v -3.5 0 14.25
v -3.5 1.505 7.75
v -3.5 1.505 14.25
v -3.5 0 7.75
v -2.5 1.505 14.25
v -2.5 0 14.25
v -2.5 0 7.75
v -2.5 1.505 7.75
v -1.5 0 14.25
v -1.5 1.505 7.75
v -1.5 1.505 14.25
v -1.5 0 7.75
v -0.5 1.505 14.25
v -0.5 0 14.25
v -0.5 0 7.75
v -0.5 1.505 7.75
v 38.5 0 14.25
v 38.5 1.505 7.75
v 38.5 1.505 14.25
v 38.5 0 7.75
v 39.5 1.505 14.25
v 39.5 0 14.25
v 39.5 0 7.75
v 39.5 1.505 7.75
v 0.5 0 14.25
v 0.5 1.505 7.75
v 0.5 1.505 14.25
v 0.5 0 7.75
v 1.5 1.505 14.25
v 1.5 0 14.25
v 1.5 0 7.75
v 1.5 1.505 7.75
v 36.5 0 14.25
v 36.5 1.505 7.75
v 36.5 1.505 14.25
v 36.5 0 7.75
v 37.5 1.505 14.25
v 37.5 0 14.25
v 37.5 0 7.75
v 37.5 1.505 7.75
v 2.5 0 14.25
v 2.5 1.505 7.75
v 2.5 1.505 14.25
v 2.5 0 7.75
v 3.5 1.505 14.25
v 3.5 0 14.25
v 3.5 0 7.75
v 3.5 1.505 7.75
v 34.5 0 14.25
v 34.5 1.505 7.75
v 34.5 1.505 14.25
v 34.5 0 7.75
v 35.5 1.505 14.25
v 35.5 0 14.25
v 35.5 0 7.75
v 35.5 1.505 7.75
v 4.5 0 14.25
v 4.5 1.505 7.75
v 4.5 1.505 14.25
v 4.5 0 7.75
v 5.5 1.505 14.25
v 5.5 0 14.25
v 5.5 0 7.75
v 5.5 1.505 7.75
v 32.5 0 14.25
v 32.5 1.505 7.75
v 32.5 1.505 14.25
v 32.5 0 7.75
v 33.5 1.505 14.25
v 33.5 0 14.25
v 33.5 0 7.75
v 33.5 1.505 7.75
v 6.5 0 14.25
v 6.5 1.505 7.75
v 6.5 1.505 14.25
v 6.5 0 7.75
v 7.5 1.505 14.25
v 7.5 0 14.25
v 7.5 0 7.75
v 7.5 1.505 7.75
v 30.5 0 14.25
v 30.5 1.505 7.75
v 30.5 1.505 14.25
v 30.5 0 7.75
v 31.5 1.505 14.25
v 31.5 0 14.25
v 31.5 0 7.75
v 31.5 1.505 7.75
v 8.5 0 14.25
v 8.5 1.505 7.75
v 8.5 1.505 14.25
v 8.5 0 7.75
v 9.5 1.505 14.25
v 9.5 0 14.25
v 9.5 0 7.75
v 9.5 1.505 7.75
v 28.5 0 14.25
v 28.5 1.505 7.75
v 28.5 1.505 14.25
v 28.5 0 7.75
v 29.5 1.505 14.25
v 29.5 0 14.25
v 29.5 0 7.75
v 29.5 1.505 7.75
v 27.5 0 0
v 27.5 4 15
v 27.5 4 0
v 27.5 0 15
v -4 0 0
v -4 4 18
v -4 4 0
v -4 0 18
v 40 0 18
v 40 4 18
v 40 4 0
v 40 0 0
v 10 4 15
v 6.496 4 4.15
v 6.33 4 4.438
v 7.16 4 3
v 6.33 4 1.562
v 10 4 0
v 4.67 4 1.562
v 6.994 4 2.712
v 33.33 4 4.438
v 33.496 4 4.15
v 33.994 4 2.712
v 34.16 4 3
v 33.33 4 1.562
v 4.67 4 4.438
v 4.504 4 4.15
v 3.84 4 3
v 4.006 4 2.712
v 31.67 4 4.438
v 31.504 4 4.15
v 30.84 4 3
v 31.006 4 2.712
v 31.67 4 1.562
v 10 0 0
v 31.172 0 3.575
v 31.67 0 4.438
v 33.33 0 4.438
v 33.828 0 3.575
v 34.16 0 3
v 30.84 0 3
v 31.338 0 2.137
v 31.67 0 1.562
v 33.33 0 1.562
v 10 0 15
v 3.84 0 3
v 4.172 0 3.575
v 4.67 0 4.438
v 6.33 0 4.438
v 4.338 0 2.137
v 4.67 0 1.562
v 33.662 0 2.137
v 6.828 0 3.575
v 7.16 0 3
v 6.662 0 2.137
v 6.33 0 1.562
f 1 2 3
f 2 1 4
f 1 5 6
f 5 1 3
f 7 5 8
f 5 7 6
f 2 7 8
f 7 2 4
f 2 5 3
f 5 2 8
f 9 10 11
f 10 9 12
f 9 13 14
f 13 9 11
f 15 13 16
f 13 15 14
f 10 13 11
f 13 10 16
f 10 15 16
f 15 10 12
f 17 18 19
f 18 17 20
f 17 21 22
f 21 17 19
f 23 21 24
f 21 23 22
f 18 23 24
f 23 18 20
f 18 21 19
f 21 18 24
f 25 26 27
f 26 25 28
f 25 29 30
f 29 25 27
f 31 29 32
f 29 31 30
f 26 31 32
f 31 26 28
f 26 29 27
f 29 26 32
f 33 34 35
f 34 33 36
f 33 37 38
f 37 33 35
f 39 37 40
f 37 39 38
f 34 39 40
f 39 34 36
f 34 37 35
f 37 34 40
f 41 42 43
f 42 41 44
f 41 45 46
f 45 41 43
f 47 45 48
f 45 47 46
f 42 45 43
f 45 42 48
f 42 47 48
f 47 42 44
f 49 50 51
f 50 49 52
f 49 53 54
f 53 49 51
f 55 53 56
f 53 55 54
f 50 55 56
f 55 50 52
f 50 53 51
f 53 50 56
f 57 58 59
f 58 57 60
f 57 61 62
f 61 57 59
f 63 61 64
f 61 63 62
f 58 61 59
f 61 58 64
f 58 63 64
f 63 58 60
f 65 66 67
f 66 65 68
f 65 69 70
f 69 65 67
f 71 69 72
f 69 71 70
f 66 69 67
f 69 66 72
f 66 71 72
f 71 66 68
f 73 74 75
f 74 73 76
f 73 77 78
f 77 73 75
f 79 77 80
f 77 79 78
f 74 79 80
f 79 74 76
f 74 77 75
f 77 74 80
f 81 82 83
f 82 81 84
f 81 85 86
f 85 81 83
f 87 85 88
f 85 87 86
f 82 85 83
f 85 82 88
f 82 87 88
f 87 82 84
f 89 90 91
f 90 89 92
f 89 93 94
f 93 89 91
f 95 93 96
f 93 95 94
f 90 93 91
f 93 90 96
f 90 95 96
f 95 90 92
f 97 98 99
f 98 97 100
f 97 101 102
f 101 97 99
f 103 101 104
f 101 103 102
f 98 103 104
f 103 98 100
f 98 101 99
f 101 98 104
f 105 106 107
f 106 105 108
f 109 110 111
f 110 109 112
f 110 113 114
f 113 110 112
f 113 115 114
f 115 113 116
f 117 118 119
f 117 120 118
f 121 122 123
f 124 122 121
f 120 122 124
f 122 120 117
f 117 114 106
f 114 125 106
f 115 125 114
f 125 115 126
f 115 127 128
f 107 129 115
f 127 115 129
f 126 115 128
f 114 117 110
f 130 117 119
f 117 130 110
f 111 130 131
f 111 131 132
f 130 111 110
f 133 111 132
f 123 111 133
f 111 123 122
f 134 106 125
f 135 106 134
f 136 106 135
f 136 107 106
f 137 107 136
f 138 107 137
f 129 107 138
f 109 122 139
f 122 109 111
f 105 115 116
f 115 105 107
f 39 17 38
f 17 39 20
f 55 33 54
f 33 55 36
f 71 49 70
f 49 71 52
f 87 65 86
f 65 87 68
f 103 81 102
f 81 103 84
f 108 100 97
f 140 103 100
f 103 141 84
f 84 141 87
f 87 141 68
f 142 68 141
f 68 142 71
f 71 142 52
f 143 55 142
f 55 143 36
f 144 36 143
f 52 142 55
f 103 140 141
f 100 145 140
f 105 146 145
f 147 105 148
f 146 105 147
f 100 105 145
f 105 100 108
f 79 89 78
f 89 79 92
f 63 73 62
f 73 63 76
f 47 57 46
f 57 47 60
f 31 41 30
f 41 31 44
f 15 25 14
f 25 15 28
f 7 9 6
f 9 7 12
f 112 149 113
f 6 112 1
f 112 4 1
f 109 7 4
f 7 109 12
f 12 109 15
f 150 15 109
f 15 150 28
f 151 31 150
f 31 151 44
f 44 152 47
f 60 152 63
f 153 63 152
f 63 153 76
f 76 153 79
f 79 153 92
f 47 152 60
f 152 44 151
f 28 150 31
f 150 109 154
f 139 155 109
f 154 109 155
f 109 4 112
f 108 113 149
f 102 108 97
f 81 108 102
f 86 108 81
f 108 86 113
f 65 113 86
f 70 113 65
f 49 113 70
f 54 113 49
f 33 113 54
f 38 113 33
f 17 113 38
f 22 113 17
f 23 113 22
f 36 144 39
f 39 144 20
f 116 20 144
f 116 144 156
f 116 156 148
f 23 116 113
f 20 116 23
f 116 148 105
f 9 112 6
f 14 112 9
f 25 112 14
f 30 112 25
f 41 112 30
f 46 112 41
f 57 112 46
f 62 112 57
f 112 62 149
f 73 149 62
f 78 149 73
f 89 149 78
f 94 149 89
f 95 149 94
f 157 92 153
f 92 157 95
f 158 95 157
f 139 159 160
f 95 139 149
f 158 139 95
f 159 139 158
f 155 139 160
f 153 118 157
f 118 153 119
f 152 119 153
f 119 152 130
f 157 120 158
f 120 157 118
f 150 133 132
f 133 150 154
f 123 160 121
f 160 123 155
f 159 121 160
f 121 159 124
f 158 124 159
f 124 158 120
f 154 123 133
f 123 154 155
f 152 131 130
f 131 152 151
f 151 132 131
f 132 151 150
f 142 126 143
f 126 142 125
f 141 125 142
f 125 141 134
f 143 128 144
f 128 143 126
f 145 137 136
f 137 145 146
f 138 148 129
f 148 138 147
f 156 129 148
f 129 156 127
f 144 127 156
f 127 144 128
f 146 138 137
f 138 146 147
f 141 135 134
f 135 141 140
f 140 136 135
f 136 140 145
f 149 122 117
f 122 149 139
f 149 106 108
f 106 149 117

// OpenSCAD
// how many teeth on each side
teeth = 10;

// width of the belt in mm incl clearance (use 6.25 for typical GT2 belt)
belt_width = 6.5;

// thickness of the belt in mm (use 1.5 for GT2 belt)
belt_thickness = 1.5;

// belt pitch in mm (use 2.0 for GT2 belt)
pitch = 2.0;

// this controls the strength of the bracket 
shell = 1.5;

/* [Hidden] */
cutout_width = 6 + belt_thickness + shell;
len = 2*teeth*pitch + cutout_width;
round_corner_epsilon = 1;
epsilon = 0.01;


module clipTop()
{
    difference()
    {
      translate([-4,0,0])
    cube([44,4,18]);
 
    translate([5.5,1,3])
    rotate([90,0,0])
    cylinder(r=1.66, h=10, center=true);
    
    translate([32.5,1,3])
    rotate([90,0,0])
    cylinder(r=1.66, h=10, center=true);

    translate([10,0,0])
    cube([17.5,4,15]);
        
        translate([20,-1.5,11])
    // belt teeth
	for(i=[1:1:teeth]) {

		// left side
		color([1,0, 0])
		translate([len/2 + pitch/4 - i*pitch, shell + belt_thickness/2, 0])
			cube([pitch/2, belt_thickness + epsilon, belt_width], center=true);

		// right side 
		color([1,0, 0])
		translate([-len/2 - pitch/4 + i*pitch, shell + belt_thickness/2, 0])
			cube([pitch/2, belt_thickness + epsilon, belt_width], center=true);
	};
    }
}

module clipBottom()
{
     difference()
    {
        union()
        {
    translate([-4,-2.5,15])      
    cube([44,6,3]); 
    translate([-4,-0.5,7])       
    cube([44,4,8]);
    
    
}
  

  //  translate([10,0,0])
 //   cube([15.5,3,15]);
}
}

clipTop();
//translate([0,5,0])
//clipBottom();
